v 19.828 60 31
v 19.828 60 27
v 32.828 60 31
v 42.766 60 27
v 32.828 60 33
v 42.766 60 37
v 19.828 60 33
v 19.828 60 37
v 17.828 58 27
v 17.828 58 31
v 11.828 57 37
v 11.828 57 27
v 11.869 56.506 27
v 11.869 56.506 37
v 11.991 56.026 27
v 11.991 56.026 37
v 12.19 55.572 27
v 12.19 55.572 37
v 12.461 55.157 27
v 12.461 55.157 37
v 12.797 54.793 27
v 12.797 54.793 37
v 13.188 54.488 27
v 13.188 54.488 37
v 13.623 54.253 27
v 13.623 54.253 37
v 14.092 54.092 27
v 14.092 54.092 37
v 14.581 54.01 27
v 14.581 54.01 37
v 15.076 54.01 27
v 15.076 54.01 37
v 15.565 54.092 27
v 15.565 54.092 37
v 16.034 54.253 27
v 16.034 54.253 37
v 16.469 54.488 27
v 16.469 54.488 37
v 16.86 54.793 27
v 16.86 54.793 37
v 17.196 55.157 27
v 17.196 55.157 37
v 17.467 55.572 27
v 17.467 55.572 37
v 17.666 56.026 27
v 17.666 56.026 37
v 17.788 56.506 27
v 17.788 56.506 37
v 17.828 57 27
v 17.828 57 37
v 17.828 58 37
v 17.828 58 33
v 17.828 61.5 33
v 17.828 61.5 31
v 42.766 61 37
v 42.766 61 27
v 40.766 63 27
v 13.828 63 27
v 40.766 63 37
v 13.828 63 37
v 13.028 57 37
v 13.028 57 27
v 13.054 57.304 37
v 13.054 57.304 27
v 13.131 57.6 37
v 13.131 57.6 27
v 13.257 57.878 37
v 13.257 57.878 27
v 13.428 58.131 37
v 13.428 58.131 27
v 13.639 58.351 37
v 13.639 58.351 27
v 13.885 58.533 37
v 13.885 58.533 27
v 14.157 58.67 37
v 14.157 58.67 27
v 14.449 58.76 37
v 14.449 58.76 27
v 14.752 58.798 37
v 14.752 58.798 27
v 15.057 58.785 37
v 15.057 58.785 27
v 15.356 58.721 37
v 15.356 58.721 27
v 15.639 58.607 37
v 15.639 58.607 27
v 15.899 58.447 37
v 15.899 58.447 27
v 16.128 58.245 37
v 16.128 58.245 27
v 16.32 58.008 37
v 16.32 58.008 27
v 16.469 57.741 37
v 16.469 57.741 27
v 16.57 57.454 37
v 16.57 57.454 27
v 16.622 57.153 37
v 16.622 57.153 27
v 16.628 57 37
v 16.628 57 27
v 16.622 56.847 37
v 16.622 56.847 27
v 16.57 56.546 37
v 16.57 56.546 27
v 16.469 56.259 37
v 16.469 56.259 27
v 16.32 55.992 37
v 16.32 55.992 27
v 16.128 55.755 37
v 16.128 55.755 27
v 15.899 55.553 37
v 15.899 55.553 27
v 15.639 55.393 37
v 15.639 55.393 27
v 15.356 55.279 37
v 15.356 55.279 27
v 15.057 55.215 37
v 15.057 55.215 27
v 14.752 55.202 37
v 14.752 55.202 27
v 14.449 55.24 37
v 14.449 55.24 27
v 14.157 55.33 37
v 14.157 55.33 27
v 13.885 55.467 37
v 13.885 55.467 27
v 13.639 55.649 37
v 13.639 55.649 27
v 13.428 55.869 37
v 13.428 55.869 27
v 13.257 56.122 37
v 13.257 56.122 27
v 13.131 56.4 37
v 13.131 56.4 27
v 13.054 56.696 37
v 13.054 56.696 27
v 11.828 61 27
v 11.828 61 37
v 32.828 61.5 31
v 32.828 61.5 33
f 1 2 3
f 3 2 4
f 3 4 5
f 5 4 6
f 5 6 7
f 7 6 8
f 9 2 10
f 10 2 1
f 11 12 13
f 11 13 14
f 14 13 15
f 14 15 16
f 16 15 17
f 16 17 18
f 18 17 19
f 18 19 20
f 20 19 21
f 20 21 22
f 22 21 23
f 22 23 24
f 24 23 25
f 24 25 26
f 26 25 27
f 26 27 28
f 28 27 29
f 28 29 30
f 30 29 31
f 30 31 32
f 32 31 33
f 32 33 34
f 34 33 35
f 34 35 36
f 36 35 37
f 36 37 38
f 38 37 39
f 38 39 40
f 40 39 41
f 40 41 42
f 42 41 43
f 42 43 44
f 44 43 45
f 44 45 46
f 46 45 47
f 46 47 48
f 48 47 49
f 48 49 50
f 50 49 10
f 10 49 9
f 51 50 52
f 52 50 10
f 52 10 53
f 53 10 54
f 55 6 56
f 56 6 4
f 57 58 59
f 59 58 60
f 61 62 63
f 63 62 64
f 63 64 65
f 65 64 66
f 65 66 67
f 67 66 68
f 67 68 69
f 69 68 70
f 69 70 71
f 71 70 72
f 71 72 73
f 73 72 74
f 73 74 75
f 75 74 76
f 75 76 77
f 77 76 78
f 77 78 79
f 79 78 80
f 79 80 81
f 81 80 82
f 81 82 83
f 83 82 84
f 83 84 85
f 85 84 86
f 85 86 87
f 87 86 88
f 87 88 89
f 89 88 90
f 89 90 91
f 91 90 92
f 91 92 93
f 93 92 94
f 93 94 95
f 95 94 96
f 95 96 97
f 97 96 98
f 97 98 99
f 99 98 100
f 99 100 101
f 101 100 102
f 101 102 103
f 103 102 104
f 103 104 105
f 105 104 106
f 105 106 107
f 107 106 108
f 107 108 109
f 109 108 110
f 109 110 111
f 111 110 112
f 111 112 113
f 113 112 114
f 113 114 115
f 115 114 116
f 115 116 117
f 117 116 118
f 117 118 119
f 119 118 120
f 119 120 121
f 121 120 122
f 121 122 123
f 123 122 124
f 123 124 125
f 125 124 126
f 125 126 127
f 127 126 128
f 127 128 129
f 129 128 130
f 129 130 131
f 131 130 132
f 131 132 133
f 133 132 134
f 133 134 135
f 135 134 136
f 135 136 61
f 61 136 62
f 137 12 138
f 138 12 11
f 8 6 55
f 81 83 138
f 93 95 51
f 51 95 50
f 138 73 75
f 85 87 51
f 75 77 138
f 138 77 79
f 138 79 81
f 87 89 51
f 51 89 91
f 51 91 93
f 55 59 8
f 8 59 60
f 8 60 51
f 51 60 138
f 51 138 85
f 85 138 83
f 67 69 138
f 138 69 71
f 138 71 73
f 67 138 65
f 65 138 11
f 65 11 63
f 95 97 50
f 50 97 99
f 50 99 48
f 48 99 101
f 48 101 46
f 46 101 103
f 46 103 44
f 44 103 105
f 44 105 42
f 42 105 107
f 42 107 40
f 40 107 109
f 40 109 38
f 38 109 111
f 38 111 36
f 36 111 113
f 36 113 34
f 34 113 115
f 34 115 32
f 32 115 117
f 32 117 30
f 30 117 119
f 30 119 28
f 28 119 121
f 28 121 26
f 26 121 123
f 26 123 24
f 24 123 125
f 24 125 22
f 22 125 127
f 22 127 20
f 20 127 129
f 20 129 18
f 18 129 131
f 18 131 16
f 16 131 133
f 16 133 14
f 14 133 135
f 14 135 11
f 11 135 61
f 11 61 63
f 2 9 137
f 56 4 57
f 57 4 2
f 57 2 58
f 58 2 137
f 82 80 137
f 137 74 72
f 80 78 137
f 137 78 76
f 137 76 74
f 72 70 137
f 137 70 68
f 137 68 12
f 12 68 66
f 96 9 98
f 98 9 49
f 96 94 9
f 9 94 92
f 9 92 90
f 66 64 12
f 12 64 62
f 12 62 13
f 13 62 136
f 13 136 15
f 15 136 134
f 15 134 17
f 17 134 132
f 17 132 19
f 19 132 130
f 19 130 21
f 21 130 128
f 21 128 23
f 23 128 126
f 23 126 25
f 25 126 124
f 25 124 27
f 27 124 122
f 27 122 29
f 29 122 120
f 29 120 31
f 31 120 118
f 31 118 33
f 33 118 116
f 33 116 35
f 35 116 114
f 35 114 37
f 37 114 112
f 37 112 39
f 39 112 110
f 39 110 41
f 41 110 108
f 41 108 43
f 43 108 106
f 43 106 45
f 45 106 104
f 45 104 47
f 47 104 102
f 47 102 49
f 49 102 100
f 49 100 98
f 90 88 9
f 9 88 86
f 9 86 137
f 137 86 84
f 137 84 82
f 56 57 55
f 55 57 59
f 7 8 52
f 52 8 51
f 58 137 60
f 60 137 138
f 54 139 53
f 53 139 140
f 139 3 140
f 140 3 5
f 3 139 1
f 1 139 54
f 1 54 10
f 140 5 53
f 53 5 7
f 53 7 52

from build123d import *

# Parameters (mm, degrees)
SKETCH1_W           = 120
SKETCH1_H           = 60
BOSS_EXTRUDE1_DEPTH = 2
CHAMFER2_SIZE       = 10
SKETCH2_W           = 38.34314575
SKETCH2_H           = 2
BOSS_EXTRUDE2_DEPTH = 15
FILLET1_R           = 2
SKETCH4_R           = 2.5
SKETCH4_R_2         = 1
BOSS_EXTRUDE3_DEPTH = 4
SKETCH6_W           = 61
SKETCH6_H           = 14.6
BOSS_EXTRUDE5_DEPTH = 15
CUT_EXTRUDE2_START  = -3
CUT_EXTRUDE2_DEPTH  = 55
CHAMFER3_SIZE       = 4
SKETCH9_W           = 14
SKETCH9_H           = 16
SKETCH9_W_2         = 10
SKETCH9_H_2         = 12
BOSS_EXTRUDE6_DEPTH = 4
SKETCH10_R          = 3
SKETCH10_R_2        = 1.5
BOSS_EXTRUDE8_DEPTH = 4
BOSS_EXTRUDE9_START = 10
SKETCH12_R          = 3
SKETCH12_R_2        = 1.8
BOSS_EXTRUDE9_DEPTH = 10
CHAMFER4_SIZE       = 2
SKETCH13_W          = 142.36375675
SKETCH13_H          = 36.547684865
CUT_EXTRUDE3_DEPTH  = 85
CUT_EXTRUDE4_START  = -4
CUT_EXTRUDE4_DEPTH  = 2


with BuildPart() as part:
    # Sketch1 → Boss-Extrude1 (new body)
    with BuildSketch(Plane.XY):
        with Locations((60, 30)):
            Rectangle(SKETCH1_W, SKETCH1_H)
    extrude(amount=BOSS_EXTRUDE1_DEPTH)

    # Chamfer2
    chamfer2_edges = [part.edges().sort_by_distance(p)[0] for p in [
        (0, 60, 1),
        (120, 60, 1),
        (120, 0, 1),
        (0, 0, 1),
    ]]
    chamfer(chamfer2_edges, length=CHAMFER2_SIZE)

    # Sketch2 → Boss-Extrude2 (add)
    with BuildSketch(Plane.XY.offset(2)):
        Polygon((10.828427125, 2), (109.171572875, 2), (118, 10.828427125), (118, 49.171572875), (109.171572875, 58), (109.171572875, 60), (110, 60), (120, 50), (120, 10), (110, 0), (10, 0), (0, 10), (0, 50), (10, 60), (10.828427125, 60), (10.828427125, 58), (2, 49.171572875), (2, 10.828427125), align=None)
        with Locations((60, 59)):
            Rectangle(SKETCH2_W, SKETCH2_H)
    extrude(amount=BOSS_EXTRUDE2_DEPTH)

    # Fillet1
    fillet1_edges = [part.edges().sort_by_distance(p)[0] for p in [
        (113.585786438, 53.585786438, 2),
        (118, 30, 2),
        (113.585786438, 6.414213562, 2),
        (60, 2, 2),
        (6.414213562, 6.414213562, 2),
        (2, 30, 2),
        (6.414213562, 53.585786438, 2),
        (60, 58, 2),
    ]]
    fillet(fillet1_edges, radius=FILLET1_R)

    # Sketch4 → Boss-Extrude3 (add)
    with BuildSketch(Plane.XY.offset(2)):
        with Locations((33, 41)):
            Circle(SKETCH4_R)
        with Locations((33, 41)):
            Circle(SKETCH4_R_2, mode=Mode.SUBTRACT)
    extrude(amount=BOSS_EXTRUDE3_DEPTH)

    # Sketch6 → Boss-Extrude5 (add)
    with BuildSketch(Plane.XY.offset(2)):
        with Locations((60, 9.3)):
            Rectangle(SKETCH6_W, SKETCH6_H)
    extrude(amount=BOSS_EXTRUDE5_DEPTH)

    # Sketch7 → Cut-Extrude2 (cut)
    with BuildSketch(Plane.ZY.offset(-29.5).offset(CUT_EXTRUDE2_START)):
        with BuildLine():
            ThreePointArc((16.8, 9.3), (14.661879503, 14.461879503), (9.5, 16.6))
            Line((9.5, 16.6), (9.5, 2))
            ThreePointArc((9.5, 2), (14.661879503, 4.138120497), (16.8, 9.3))
        make_face()
        with BuildLine():
            Line((9.5, 2), (9.5, 16.6))
            ThreePointArc((9.5, 16.6), (2.2, 9.3), (9.5, 2))
        make_face()
        with BuildLine():
            Line((17, 16.6), (9.5, 16.6))
            ThreePointArc((9.5, 16.6), (14.661879503, 14.461879503), (16.8, 9.3))
            ThreePointArc((16.8, 9.3), (14.661879503, 4.138120497), (9.5, 2))
            Line((9.5, 2), (17, 2))
            Line((17, 2), (17, 16.6))
        make_face()
    extrude(amount=-CUT_EXTRUDE2_DEPTH, mode=Mode.SUBTRACT)

    # Chamfer3
    chamfer3_edges = [part.edges().sort_by_distance(p)[0] for p in [
        (31, 16.6, 17),
        (89, 16.6, 17),
    ]]
    chamfer(chamfer3_edges, length=CHAMFER3_SIZE)

    # Sketch9 → Boss-Extrude6 (add)
    with BuildSketch(Plane.XY.offset(2)):
        with Locations((45, 41)):
            Rectangle(SKETCH9_W, SKETCH9_H)
        with Locations((45, 41)):
            Rectangle(SKETCH9_W_2, SKETCH9_H_2, mode=Mode.SUBTRACT)
    extrude(amount=BOSS_EXTRUDE6_DEPTH)

    # Sketch10 → Boss-Extrude8 (add)
    with BuildSketch(Plane.XY.offset(2)):
        with Locations((14.828427125, 57)):
            Circle(SKETCH10_R)
        with Locations((14.828427125, 57)):
            Circle(SKETCH10_R_2, mode=Mode.SUBTRACT)
        with Locations((105.171572875, 57)):
            Circle(SKETCH10_R)
        with Locations((105.171572875, 57)):
            Circle(SKETCH10_R_2, mode=Mode.SUBTRACT)
    extrude(amount=BOSS_EXTRUDE8_DEPTH)

    # Sketch13 → Cut-Extrude3 (cut)
    with BuildSketch(Plane(origin=(0, 60, 0), x_dir=(1, 0, 0), z_dir=(0, 1, 0))):
        with Locations((60.382698271, -6.82770274)):
            Rectangle(SKETCH13_W, SKETCH13_H)
    extrude(amount=-CUT_EXTRUDE3_DEPTH, mode=Mode.SUBTRACT)


with BuildPart() as body_2:
    # Sketch12 → Boss-Extrude9 (new body)
    with BuildSketch(Plane.XY.offset(17).offset(BOSS_EXTRUDE9_START)):
        with Locations((14.828427125, 57)):
            Circle(SKETCH12_R)
        with Locations((14.828427125, 57)):
            Circle(SKETCH12_R_2, mode=Mode.SUBTRACT)
        with BuildLine():
            Line((11.828427125, 63), (11.828427125, 57))
            ThreePointArc((11.828427125, 57), (14.828427125, 60), (17.828427125, 57))
            Line((17.828427125, 57), (17.828427125, 60))
            Line((17.828427125, 60), (42.76580882, 60))
            Line((42.76580882, 60), (42.76580882, 63))
            Line((42.76580882, 63), (11.828427125, 63))
        make_face()
    extrude(amount=BOSS_EXTRUDE9_DEPTH)

    # Chamfer4
    chamfer4_edges = [body_2.edges().sort_by_distance(p)[0] for p in [
        (11.828427125, 63, 32),
        (42.76580882, 63, 32),
        (17.828427125, 60, 32),
    ]]
    chamfer(chamfer4_edges, length=CHAMFER4_SIZE)

    # Sketch14 → Cut-Extrude4 (cut)
    with BuildSketch(Plane.XY.offset(37).offset(CUT_EXTRUDE4_START)):
        Polygon((32.828427125, 60), (32.828427125, 61.5), (17.828427125, 61.5), (17.828427125, 58), (28.911209964, 56.857462596), align=None)
    extrude(amount=-CUT_EXTRUDE4_DEPTH, mode=Mode.SUBTRACT)


solid = body_2.part
